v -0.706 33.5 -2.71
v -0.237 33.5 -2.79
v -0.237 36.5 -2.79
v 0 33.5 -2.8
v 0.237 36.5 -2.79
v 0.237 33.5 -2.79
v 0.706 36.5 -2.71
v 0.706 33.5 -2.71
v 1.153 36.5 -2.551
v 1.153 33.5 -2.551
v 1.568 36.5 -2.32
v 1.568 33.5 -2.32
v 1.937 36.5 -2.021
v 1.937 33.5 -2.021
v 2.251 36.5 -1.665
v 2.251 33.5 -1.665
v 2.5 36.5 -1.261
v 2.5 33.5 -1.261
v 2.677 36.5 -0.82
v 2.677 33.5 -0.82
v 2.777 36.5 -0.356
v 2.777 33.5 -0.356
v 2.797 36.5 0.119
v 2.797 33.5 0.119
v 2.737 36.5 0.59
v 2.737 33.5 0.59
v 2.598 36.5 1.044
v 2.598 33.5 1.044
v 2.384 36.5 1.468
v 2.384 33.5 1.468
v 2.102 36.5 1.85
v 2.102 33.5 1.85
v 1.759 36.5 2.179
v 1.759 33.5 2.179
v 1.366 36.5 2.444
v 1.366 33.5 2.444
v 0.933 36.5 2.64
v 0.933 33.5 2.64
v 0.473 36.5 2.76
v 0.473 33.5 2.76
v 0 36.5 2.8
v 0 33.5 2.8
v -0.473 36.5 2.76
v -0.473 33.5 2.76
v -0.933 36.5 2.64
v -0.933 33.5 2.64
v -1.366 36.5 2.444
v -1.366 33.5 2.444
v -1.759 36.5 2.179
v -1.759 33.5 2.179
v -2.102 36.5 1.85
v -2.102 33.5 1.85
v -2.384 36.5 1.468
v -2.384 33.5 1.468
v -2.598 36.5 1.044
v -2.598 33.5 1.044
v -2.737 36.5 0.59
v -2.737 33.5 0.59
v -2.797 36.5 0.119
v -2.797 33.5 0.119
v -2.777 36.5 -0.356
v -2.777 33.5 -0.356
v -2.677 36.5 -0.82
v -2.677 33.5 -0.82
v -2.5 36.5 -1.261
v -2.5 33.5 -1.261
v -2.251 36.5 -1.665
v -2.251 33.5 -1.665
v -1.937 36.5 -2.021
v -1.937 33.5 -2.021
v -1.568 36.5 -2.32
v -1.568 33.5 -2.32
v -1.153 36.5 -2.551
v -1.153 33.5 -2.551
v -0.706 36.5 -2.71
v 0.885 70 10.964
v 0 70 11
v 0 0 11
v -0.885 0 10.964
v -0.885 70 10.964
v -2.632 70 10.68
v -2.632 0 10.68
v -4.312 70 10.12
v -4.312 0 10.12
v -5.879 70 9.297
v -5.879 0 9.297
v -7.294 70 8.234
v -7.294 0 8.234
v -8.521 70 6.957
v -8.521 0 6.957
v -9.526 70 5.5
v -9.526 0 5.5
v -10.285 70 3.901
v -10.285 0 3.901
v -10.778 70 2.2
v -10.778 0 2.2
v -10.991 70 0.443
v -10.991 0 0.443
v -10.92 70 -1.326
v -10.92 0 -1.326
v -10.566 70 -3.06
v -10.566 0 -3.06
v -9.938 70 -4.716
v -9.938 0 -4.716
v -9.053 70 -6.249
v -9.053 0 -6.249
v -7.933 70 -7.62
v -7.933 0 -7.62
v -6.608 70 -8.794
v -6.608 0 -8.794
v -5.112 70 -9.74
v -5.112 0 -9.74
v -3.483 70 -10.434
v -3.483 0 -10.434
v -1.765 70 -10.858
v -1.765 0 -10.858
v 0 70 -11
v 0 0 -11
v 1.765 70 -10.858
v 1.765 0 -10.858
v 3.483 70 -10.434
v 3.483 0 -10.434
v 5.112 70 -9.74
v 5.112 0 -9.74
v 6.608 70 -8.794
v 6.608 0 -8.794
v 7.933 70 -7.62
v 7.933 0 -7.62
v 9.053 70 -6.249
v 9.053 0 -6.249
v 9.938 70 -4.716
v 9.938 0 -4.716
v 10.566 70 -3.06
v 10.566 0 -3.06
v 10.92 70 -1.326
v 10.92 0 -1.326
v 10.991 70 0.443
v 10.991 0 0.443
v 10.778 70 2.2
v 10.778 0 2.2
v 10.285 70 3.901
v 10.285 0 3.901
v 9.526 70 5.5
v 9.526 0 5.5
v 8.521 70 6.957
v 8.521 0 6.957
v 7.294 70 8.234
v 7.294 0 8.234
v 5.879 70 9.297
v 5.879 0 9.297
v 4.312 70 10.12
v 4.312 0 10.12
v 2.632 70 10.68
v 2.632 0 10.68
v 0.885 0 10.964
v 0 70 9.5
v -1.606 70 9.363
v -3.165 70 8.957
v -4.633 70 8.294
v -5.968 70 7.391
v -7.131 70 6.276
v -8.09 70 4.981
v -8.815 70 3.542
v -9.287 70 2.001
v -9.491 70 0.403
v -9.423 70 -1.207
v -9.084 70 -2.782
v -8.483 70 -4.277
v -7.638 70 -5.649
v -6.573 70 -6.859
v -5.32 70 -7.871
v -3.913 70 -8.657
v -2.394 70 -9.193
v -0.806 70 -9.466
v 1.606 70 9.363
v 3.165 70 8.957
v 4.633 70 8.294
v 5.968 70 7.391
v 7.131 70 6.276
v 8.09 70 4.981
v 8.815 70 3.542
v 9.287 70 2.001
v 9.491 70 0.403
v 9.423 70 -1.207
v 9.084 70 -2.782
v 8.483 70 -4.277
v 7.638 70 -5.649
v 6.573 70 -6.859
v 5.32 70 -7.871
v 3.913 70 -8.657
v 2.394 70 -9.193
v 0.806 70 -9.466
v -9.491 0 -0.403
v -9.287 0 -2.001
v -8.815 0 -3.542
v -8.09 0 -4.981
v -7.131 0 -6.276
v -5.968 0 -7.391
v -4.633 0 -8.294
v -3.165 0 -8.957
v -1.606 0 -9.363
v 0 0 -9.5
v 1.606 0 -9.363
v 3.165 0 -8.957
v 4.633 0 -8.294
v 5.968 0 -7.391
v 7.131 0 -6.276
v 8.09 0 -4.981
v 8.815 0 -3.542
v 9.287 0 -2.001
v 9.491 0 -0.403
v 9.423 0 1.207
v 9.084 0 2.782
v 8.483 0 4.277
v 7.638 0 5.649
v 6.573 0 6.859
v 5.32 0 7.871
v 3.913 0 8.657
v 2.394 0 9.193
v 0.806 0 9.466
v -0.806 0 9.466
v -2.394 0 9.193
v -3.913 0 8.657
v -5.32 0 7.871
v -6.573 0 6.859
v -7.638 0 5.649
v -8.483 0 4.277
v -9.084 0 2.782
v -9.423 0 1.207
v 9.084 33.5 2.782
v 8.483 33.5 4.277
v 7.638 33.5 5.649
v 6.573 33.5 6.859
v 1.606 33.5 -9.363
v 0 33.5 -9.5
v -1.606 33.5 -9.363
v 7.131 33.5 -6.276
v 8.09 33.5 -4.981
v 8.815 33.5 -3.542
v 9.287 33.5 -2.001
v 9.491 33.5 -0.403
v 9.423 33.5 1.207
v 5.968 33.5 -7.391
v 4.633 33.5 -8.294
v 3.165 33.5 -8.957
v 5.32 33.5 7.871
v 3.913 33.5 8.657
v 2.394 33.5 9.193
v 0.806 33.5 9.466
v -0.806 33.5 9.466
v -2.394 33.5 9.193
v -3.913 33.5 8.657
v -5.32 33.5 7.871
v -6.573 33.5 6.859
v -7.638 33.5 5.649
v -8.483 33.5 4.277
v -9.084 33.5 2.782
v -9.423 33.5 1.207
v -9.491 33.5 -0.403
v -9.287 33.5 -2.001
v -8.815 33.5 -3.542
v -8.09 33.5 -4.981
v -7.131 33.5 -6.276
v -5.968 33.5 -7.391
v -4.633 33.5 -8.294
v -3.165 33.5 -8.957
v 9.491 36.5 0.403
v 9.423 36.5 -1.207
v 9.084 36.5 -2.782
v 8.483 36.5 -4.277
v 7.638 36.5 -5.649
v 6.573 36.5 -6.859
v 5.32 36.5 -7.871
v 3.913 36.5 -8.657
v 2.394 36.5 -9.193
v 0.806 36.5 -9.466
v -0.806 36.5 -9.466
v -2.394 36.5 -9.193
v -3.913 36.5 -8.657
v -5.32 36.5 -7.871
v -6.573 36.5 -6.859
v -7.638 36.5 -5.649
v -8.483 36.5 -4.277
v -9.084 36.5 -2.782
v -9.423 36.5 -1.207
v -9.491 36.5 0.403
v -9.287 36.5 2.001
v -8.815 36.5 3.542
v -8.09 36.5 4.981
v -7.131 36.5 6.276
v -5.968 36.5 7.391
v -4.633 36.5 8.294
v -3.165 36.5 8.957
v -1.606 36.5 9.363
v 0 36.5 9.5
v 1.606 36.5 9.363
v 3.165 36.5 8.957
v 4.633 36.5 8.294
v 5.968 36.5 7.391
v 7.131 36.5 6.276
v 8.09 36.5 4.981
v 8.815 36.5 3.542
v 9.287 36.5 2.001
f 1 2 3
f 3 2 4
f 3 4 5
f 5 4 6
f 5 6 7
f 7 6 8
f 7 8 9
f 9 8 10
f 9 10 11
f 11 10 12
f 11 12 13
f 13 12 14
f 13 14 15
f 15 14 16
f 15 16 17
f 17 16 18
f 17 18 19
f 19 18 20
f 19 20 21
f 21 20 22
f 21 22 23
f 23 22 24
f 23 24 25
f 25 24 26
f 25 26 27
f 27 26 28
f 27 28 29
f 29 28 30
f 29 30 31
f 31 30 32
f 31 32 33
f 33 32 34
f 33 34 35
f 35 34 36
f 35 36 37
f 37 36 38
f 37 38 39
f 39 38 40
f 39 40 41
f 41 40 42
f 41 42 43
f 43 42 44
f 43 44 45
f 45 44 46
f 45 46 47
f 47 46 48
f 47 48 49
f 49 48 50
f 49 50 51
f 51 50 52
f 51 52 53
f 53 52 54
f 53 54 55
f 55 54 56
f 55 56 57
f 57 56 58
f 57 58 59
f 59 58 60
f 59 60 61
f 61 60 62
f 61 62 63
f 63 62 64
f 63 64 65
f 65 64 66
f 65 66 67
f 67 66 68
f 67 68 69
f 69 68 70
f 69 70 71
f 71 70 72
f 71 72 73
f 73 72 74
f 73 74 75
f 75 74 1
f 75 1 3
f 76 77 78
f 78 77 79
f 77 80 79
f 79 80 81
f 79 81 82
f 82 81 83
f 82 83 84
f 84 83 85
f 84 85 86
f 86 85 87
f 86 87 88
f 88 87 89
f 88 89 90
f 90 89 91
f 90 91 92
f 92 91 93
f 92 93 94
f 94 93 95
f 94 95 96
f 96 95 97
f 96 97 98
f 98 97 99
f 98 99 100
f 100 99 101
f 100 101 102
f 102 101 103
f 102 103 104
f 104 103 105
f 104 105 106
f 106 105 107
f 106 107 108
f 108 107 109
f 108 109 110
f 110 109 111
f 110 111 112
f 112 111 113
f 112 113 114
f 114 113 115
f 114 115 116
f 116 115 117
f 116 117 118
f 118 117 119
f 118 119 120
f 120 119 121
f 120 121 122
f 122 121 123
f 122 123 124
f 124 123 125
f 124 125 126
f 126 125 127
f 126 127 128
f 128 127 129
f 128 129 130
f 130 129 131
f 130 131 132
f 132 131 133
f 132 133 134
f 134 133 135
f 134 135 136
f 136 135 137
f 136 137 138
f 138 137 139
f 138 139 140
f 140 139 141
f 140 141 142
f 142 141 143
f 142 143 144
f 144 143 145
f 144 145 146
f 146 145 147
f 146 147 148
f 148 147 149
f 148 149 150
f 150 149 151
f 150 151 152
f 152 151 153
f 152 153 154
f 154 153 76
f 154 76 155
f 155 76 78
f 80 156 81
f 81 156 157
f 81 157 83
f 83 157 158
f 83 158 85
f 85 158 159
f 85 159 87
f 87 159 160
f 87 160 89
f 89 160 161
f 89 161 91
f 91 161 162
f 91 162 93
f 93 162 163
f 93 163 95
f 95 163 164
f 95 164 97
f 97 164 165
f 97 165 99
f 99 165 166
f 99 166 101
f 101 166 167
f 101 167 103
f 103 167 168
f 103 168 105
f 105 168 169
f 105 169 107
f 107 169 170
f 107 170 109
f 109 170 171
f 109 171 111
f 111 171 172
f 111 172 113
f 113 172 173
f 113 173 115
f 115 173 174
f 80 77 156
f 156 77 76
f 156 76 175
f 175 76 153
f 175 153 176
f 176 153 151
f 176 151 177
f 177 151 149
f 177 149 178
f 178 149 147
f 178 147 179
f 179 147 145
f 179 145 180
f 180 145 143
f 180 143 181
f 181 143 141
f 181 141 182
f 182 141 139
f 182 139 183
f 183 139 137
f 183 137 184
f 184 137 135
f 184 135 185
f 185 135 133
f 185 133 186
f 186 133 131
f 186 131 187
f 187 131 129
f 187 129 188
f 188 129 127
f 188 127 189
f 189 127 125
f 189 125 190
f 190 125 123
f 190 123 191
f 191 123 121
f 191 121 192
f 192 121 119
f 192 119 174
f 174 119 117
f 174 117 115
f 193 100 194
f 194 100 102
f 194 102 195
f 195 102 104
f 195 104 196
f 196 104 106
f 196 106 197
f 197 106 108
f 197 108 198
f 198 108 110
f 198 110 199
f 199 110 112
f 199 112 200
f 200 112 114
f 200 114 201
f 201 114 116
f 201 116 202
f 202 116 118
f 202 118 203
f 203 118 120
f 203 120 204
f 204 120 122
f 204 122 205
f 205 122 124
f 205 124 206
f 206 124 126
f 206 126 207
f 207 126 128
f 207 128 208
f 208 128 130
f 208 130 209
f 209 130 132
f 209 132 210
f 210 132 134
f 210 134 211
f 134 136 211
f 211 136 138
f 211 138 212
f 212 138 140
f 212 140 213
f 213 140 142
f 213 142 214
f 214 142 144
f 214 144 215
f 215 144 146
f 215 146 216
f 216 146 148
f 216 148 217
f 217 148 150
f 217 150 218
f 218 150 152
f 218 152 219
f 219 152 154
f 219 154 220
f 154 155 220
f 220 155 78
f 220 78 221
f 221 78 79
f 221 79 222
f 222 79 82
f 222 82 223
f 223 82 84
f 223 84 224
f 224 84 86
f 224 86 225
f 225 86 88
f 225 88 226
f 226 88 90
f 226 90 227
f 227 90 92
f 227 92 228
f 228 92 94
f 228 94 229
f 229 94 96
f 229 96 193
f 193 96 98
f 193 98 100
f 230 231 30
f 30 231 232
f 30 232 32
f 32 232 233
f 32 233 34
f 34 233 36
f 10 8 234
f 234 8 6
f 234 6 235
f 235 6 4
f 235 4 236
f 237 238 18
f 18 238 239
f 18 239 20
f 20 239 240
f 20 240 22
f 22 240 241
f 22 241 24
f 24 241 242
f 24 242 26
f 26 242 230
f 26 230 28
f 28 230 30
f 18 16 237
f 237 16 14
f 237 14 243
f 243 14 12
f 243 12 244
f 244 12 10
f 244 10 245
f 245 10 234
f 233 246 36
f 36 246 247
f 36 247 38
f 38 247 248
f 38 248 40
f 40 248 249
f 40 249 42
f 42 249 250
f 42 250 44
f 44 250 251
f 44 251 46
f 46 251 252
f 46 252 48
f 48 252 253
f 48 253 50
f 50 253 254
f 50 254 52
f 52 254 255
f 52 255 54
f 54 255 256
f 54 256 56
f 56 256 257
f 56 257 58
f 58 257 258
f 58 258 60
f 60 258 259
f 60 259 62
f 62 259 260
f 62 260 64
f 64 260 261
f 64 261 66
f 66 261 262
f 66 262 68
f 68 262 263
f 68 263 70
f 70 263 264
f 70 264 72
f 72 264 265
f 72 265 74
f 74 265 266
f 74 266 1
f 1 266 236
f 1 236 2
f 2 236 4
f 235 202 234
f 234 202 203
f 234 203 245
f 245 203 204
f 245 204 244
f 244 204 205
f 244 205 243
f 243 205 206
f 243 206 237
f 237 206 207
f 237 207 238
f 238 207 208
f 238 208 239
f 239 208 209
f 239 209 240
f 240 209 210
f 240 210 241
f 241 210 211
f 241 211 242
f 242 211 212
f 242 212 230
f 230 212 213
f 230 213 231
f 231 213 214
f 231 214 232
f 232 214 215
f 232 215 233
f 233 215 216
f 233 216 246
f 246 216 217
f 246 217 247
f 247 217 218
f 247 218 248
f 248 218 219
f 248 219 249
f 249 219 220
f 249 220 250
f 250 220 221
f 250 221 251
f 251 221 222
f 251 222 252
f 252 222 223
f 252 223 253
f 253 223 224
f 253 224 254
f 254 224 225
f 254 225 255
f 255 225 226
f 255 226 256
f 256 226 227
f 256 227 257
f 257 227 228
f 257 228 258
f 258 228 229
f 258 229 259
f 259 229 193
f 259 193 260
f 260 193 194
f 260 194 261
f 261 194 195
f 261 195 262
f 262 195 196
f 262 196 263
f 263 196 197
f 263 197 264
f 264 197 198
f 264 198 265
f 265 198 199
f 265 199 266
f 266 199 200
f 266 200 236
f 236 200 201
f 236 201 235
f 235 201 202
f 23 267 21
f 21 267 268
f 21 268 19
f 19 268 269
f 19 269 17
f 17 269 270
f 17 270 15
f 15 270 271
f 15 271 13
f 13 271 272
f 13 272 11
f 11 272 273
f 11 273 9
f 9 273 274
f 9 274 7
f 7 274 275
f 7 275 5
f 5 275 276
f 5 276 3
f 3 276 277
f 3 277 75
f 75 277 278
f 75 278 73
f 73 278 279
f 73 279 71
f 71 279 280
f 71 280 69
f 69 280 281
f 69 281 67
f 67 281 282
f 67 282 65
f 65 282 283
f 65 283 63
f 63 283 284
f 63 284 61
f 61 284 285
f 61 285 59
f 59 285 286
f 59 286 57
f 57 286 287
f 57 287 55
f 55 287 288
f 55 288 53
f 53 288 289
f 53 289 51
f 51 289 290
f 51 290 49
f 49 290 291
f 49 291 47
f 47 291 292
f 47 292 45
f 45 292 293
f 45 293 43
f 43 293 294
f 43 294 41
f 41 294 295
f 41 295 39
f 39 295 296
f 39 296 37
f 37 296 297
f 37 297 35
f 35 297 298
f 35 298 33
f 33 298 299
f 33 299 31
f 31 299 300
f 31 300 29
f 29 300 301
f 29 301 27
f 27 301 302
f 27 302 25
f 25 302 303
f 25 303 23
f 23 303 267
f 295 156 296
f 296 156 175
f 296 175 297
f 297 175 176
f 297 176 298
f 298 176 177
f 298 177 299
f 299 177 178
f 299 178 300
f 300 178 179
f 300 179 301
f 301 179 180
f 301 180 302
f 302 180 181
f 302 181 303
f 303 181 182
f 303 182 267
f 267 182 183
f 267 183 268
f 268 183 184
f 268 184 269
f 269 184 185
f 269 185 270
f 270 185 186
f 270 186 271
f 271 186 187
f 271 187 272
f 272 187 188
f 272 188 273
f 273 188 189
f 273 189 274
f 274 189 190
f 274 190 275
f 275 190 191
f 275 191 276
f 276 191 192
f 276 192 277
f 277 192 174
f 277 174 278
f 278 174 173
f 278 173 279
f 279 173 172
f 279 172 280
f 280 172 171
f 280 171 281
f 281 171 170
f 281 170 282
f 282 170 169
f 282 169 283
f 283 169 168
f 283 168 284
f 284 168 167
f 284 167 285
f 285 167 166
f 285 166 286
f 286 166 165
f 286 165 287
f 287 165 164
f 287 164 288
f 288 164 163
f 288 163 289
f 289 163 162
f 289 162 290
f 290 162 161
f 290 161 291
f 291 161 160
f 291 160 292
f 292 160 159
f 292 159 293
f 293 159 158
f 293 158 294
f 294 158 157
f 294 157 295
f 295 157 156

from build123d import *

# Parameters (mm, degrees)
SKETCH3_R           = 11
BOSS_EXTRUDE1_DEPTH = 70
SKETCH4_R           = 2.8
CUT_EXTRUDE1_DEPTH  = 70
SKETCH5_R           = 9.5
CUT_EXTRUDE2_DEPTH  = 33.5
CUT_EXTRUDE3_START  = -33.5
SKETCH6_R           = 9.5
CUT_EXTRUDE3_DEPTH  = 33.5


with BuildPart() as part:
    # Sketch3 → Boss-Extrude1 (new body)
    with BuildSketch(Plane(origin=(0, 0, 0), x_dir=(1, 0, 0), z_dir=(0, 1, 0))):
        with Locations(Location((0, 0, 0), (0, 0, 270))):
            Circle(SKETCH3_R)
    extrude(amount=BOSS_EXTRUDE1_DEPTH)

    # Sketch4 → Cut-Extrude1 (cut)
    with BuildSketch(Plane(origin=(0, 70, 0), x_dir=(1, 0, 0), z_dir=(0, 1, 0))):
        with Locations(Location((0, 0, 0), (0, 0, 270))):
            Circle(SKETCH4_R)
    extrude(amount=-CUT_EXTRUDE1_DEPTH, mode=Mode.SUBTRACT)

    # Sketch5 → Cut-Extrude2 (cut)
    with BuildSketch(Plane(origin=(0, 0, 0), x_dir=(-1, 0, 0), z_dir=(0, -1, 0))):
        with Locations(Location((0, 0, 0), (0, 0, 90))):
            Circle(SKETCH5_R)
    extrude(amount=-CUT_EXTRUDE2_DEPTH, mode=Mode.SUBTRACT)

    # Sketch6 → Cut-Extrude3 (cut)
    with BuildSketch(Plane(origin=(0, 70, 0), x_dir=(1, 0, 0), z_dir=(0, 1, 0)).offset(CUT_EXTRUDE3_START)):
        with Locations(Location((0, 0, 0), (0, 0, 90))):
            Circle(SKETCH6_R)
    extrude(amount=CUT_EXTRUDE3_DEPTH, mode=Mode.SUBTRACT)


solid = part.part
